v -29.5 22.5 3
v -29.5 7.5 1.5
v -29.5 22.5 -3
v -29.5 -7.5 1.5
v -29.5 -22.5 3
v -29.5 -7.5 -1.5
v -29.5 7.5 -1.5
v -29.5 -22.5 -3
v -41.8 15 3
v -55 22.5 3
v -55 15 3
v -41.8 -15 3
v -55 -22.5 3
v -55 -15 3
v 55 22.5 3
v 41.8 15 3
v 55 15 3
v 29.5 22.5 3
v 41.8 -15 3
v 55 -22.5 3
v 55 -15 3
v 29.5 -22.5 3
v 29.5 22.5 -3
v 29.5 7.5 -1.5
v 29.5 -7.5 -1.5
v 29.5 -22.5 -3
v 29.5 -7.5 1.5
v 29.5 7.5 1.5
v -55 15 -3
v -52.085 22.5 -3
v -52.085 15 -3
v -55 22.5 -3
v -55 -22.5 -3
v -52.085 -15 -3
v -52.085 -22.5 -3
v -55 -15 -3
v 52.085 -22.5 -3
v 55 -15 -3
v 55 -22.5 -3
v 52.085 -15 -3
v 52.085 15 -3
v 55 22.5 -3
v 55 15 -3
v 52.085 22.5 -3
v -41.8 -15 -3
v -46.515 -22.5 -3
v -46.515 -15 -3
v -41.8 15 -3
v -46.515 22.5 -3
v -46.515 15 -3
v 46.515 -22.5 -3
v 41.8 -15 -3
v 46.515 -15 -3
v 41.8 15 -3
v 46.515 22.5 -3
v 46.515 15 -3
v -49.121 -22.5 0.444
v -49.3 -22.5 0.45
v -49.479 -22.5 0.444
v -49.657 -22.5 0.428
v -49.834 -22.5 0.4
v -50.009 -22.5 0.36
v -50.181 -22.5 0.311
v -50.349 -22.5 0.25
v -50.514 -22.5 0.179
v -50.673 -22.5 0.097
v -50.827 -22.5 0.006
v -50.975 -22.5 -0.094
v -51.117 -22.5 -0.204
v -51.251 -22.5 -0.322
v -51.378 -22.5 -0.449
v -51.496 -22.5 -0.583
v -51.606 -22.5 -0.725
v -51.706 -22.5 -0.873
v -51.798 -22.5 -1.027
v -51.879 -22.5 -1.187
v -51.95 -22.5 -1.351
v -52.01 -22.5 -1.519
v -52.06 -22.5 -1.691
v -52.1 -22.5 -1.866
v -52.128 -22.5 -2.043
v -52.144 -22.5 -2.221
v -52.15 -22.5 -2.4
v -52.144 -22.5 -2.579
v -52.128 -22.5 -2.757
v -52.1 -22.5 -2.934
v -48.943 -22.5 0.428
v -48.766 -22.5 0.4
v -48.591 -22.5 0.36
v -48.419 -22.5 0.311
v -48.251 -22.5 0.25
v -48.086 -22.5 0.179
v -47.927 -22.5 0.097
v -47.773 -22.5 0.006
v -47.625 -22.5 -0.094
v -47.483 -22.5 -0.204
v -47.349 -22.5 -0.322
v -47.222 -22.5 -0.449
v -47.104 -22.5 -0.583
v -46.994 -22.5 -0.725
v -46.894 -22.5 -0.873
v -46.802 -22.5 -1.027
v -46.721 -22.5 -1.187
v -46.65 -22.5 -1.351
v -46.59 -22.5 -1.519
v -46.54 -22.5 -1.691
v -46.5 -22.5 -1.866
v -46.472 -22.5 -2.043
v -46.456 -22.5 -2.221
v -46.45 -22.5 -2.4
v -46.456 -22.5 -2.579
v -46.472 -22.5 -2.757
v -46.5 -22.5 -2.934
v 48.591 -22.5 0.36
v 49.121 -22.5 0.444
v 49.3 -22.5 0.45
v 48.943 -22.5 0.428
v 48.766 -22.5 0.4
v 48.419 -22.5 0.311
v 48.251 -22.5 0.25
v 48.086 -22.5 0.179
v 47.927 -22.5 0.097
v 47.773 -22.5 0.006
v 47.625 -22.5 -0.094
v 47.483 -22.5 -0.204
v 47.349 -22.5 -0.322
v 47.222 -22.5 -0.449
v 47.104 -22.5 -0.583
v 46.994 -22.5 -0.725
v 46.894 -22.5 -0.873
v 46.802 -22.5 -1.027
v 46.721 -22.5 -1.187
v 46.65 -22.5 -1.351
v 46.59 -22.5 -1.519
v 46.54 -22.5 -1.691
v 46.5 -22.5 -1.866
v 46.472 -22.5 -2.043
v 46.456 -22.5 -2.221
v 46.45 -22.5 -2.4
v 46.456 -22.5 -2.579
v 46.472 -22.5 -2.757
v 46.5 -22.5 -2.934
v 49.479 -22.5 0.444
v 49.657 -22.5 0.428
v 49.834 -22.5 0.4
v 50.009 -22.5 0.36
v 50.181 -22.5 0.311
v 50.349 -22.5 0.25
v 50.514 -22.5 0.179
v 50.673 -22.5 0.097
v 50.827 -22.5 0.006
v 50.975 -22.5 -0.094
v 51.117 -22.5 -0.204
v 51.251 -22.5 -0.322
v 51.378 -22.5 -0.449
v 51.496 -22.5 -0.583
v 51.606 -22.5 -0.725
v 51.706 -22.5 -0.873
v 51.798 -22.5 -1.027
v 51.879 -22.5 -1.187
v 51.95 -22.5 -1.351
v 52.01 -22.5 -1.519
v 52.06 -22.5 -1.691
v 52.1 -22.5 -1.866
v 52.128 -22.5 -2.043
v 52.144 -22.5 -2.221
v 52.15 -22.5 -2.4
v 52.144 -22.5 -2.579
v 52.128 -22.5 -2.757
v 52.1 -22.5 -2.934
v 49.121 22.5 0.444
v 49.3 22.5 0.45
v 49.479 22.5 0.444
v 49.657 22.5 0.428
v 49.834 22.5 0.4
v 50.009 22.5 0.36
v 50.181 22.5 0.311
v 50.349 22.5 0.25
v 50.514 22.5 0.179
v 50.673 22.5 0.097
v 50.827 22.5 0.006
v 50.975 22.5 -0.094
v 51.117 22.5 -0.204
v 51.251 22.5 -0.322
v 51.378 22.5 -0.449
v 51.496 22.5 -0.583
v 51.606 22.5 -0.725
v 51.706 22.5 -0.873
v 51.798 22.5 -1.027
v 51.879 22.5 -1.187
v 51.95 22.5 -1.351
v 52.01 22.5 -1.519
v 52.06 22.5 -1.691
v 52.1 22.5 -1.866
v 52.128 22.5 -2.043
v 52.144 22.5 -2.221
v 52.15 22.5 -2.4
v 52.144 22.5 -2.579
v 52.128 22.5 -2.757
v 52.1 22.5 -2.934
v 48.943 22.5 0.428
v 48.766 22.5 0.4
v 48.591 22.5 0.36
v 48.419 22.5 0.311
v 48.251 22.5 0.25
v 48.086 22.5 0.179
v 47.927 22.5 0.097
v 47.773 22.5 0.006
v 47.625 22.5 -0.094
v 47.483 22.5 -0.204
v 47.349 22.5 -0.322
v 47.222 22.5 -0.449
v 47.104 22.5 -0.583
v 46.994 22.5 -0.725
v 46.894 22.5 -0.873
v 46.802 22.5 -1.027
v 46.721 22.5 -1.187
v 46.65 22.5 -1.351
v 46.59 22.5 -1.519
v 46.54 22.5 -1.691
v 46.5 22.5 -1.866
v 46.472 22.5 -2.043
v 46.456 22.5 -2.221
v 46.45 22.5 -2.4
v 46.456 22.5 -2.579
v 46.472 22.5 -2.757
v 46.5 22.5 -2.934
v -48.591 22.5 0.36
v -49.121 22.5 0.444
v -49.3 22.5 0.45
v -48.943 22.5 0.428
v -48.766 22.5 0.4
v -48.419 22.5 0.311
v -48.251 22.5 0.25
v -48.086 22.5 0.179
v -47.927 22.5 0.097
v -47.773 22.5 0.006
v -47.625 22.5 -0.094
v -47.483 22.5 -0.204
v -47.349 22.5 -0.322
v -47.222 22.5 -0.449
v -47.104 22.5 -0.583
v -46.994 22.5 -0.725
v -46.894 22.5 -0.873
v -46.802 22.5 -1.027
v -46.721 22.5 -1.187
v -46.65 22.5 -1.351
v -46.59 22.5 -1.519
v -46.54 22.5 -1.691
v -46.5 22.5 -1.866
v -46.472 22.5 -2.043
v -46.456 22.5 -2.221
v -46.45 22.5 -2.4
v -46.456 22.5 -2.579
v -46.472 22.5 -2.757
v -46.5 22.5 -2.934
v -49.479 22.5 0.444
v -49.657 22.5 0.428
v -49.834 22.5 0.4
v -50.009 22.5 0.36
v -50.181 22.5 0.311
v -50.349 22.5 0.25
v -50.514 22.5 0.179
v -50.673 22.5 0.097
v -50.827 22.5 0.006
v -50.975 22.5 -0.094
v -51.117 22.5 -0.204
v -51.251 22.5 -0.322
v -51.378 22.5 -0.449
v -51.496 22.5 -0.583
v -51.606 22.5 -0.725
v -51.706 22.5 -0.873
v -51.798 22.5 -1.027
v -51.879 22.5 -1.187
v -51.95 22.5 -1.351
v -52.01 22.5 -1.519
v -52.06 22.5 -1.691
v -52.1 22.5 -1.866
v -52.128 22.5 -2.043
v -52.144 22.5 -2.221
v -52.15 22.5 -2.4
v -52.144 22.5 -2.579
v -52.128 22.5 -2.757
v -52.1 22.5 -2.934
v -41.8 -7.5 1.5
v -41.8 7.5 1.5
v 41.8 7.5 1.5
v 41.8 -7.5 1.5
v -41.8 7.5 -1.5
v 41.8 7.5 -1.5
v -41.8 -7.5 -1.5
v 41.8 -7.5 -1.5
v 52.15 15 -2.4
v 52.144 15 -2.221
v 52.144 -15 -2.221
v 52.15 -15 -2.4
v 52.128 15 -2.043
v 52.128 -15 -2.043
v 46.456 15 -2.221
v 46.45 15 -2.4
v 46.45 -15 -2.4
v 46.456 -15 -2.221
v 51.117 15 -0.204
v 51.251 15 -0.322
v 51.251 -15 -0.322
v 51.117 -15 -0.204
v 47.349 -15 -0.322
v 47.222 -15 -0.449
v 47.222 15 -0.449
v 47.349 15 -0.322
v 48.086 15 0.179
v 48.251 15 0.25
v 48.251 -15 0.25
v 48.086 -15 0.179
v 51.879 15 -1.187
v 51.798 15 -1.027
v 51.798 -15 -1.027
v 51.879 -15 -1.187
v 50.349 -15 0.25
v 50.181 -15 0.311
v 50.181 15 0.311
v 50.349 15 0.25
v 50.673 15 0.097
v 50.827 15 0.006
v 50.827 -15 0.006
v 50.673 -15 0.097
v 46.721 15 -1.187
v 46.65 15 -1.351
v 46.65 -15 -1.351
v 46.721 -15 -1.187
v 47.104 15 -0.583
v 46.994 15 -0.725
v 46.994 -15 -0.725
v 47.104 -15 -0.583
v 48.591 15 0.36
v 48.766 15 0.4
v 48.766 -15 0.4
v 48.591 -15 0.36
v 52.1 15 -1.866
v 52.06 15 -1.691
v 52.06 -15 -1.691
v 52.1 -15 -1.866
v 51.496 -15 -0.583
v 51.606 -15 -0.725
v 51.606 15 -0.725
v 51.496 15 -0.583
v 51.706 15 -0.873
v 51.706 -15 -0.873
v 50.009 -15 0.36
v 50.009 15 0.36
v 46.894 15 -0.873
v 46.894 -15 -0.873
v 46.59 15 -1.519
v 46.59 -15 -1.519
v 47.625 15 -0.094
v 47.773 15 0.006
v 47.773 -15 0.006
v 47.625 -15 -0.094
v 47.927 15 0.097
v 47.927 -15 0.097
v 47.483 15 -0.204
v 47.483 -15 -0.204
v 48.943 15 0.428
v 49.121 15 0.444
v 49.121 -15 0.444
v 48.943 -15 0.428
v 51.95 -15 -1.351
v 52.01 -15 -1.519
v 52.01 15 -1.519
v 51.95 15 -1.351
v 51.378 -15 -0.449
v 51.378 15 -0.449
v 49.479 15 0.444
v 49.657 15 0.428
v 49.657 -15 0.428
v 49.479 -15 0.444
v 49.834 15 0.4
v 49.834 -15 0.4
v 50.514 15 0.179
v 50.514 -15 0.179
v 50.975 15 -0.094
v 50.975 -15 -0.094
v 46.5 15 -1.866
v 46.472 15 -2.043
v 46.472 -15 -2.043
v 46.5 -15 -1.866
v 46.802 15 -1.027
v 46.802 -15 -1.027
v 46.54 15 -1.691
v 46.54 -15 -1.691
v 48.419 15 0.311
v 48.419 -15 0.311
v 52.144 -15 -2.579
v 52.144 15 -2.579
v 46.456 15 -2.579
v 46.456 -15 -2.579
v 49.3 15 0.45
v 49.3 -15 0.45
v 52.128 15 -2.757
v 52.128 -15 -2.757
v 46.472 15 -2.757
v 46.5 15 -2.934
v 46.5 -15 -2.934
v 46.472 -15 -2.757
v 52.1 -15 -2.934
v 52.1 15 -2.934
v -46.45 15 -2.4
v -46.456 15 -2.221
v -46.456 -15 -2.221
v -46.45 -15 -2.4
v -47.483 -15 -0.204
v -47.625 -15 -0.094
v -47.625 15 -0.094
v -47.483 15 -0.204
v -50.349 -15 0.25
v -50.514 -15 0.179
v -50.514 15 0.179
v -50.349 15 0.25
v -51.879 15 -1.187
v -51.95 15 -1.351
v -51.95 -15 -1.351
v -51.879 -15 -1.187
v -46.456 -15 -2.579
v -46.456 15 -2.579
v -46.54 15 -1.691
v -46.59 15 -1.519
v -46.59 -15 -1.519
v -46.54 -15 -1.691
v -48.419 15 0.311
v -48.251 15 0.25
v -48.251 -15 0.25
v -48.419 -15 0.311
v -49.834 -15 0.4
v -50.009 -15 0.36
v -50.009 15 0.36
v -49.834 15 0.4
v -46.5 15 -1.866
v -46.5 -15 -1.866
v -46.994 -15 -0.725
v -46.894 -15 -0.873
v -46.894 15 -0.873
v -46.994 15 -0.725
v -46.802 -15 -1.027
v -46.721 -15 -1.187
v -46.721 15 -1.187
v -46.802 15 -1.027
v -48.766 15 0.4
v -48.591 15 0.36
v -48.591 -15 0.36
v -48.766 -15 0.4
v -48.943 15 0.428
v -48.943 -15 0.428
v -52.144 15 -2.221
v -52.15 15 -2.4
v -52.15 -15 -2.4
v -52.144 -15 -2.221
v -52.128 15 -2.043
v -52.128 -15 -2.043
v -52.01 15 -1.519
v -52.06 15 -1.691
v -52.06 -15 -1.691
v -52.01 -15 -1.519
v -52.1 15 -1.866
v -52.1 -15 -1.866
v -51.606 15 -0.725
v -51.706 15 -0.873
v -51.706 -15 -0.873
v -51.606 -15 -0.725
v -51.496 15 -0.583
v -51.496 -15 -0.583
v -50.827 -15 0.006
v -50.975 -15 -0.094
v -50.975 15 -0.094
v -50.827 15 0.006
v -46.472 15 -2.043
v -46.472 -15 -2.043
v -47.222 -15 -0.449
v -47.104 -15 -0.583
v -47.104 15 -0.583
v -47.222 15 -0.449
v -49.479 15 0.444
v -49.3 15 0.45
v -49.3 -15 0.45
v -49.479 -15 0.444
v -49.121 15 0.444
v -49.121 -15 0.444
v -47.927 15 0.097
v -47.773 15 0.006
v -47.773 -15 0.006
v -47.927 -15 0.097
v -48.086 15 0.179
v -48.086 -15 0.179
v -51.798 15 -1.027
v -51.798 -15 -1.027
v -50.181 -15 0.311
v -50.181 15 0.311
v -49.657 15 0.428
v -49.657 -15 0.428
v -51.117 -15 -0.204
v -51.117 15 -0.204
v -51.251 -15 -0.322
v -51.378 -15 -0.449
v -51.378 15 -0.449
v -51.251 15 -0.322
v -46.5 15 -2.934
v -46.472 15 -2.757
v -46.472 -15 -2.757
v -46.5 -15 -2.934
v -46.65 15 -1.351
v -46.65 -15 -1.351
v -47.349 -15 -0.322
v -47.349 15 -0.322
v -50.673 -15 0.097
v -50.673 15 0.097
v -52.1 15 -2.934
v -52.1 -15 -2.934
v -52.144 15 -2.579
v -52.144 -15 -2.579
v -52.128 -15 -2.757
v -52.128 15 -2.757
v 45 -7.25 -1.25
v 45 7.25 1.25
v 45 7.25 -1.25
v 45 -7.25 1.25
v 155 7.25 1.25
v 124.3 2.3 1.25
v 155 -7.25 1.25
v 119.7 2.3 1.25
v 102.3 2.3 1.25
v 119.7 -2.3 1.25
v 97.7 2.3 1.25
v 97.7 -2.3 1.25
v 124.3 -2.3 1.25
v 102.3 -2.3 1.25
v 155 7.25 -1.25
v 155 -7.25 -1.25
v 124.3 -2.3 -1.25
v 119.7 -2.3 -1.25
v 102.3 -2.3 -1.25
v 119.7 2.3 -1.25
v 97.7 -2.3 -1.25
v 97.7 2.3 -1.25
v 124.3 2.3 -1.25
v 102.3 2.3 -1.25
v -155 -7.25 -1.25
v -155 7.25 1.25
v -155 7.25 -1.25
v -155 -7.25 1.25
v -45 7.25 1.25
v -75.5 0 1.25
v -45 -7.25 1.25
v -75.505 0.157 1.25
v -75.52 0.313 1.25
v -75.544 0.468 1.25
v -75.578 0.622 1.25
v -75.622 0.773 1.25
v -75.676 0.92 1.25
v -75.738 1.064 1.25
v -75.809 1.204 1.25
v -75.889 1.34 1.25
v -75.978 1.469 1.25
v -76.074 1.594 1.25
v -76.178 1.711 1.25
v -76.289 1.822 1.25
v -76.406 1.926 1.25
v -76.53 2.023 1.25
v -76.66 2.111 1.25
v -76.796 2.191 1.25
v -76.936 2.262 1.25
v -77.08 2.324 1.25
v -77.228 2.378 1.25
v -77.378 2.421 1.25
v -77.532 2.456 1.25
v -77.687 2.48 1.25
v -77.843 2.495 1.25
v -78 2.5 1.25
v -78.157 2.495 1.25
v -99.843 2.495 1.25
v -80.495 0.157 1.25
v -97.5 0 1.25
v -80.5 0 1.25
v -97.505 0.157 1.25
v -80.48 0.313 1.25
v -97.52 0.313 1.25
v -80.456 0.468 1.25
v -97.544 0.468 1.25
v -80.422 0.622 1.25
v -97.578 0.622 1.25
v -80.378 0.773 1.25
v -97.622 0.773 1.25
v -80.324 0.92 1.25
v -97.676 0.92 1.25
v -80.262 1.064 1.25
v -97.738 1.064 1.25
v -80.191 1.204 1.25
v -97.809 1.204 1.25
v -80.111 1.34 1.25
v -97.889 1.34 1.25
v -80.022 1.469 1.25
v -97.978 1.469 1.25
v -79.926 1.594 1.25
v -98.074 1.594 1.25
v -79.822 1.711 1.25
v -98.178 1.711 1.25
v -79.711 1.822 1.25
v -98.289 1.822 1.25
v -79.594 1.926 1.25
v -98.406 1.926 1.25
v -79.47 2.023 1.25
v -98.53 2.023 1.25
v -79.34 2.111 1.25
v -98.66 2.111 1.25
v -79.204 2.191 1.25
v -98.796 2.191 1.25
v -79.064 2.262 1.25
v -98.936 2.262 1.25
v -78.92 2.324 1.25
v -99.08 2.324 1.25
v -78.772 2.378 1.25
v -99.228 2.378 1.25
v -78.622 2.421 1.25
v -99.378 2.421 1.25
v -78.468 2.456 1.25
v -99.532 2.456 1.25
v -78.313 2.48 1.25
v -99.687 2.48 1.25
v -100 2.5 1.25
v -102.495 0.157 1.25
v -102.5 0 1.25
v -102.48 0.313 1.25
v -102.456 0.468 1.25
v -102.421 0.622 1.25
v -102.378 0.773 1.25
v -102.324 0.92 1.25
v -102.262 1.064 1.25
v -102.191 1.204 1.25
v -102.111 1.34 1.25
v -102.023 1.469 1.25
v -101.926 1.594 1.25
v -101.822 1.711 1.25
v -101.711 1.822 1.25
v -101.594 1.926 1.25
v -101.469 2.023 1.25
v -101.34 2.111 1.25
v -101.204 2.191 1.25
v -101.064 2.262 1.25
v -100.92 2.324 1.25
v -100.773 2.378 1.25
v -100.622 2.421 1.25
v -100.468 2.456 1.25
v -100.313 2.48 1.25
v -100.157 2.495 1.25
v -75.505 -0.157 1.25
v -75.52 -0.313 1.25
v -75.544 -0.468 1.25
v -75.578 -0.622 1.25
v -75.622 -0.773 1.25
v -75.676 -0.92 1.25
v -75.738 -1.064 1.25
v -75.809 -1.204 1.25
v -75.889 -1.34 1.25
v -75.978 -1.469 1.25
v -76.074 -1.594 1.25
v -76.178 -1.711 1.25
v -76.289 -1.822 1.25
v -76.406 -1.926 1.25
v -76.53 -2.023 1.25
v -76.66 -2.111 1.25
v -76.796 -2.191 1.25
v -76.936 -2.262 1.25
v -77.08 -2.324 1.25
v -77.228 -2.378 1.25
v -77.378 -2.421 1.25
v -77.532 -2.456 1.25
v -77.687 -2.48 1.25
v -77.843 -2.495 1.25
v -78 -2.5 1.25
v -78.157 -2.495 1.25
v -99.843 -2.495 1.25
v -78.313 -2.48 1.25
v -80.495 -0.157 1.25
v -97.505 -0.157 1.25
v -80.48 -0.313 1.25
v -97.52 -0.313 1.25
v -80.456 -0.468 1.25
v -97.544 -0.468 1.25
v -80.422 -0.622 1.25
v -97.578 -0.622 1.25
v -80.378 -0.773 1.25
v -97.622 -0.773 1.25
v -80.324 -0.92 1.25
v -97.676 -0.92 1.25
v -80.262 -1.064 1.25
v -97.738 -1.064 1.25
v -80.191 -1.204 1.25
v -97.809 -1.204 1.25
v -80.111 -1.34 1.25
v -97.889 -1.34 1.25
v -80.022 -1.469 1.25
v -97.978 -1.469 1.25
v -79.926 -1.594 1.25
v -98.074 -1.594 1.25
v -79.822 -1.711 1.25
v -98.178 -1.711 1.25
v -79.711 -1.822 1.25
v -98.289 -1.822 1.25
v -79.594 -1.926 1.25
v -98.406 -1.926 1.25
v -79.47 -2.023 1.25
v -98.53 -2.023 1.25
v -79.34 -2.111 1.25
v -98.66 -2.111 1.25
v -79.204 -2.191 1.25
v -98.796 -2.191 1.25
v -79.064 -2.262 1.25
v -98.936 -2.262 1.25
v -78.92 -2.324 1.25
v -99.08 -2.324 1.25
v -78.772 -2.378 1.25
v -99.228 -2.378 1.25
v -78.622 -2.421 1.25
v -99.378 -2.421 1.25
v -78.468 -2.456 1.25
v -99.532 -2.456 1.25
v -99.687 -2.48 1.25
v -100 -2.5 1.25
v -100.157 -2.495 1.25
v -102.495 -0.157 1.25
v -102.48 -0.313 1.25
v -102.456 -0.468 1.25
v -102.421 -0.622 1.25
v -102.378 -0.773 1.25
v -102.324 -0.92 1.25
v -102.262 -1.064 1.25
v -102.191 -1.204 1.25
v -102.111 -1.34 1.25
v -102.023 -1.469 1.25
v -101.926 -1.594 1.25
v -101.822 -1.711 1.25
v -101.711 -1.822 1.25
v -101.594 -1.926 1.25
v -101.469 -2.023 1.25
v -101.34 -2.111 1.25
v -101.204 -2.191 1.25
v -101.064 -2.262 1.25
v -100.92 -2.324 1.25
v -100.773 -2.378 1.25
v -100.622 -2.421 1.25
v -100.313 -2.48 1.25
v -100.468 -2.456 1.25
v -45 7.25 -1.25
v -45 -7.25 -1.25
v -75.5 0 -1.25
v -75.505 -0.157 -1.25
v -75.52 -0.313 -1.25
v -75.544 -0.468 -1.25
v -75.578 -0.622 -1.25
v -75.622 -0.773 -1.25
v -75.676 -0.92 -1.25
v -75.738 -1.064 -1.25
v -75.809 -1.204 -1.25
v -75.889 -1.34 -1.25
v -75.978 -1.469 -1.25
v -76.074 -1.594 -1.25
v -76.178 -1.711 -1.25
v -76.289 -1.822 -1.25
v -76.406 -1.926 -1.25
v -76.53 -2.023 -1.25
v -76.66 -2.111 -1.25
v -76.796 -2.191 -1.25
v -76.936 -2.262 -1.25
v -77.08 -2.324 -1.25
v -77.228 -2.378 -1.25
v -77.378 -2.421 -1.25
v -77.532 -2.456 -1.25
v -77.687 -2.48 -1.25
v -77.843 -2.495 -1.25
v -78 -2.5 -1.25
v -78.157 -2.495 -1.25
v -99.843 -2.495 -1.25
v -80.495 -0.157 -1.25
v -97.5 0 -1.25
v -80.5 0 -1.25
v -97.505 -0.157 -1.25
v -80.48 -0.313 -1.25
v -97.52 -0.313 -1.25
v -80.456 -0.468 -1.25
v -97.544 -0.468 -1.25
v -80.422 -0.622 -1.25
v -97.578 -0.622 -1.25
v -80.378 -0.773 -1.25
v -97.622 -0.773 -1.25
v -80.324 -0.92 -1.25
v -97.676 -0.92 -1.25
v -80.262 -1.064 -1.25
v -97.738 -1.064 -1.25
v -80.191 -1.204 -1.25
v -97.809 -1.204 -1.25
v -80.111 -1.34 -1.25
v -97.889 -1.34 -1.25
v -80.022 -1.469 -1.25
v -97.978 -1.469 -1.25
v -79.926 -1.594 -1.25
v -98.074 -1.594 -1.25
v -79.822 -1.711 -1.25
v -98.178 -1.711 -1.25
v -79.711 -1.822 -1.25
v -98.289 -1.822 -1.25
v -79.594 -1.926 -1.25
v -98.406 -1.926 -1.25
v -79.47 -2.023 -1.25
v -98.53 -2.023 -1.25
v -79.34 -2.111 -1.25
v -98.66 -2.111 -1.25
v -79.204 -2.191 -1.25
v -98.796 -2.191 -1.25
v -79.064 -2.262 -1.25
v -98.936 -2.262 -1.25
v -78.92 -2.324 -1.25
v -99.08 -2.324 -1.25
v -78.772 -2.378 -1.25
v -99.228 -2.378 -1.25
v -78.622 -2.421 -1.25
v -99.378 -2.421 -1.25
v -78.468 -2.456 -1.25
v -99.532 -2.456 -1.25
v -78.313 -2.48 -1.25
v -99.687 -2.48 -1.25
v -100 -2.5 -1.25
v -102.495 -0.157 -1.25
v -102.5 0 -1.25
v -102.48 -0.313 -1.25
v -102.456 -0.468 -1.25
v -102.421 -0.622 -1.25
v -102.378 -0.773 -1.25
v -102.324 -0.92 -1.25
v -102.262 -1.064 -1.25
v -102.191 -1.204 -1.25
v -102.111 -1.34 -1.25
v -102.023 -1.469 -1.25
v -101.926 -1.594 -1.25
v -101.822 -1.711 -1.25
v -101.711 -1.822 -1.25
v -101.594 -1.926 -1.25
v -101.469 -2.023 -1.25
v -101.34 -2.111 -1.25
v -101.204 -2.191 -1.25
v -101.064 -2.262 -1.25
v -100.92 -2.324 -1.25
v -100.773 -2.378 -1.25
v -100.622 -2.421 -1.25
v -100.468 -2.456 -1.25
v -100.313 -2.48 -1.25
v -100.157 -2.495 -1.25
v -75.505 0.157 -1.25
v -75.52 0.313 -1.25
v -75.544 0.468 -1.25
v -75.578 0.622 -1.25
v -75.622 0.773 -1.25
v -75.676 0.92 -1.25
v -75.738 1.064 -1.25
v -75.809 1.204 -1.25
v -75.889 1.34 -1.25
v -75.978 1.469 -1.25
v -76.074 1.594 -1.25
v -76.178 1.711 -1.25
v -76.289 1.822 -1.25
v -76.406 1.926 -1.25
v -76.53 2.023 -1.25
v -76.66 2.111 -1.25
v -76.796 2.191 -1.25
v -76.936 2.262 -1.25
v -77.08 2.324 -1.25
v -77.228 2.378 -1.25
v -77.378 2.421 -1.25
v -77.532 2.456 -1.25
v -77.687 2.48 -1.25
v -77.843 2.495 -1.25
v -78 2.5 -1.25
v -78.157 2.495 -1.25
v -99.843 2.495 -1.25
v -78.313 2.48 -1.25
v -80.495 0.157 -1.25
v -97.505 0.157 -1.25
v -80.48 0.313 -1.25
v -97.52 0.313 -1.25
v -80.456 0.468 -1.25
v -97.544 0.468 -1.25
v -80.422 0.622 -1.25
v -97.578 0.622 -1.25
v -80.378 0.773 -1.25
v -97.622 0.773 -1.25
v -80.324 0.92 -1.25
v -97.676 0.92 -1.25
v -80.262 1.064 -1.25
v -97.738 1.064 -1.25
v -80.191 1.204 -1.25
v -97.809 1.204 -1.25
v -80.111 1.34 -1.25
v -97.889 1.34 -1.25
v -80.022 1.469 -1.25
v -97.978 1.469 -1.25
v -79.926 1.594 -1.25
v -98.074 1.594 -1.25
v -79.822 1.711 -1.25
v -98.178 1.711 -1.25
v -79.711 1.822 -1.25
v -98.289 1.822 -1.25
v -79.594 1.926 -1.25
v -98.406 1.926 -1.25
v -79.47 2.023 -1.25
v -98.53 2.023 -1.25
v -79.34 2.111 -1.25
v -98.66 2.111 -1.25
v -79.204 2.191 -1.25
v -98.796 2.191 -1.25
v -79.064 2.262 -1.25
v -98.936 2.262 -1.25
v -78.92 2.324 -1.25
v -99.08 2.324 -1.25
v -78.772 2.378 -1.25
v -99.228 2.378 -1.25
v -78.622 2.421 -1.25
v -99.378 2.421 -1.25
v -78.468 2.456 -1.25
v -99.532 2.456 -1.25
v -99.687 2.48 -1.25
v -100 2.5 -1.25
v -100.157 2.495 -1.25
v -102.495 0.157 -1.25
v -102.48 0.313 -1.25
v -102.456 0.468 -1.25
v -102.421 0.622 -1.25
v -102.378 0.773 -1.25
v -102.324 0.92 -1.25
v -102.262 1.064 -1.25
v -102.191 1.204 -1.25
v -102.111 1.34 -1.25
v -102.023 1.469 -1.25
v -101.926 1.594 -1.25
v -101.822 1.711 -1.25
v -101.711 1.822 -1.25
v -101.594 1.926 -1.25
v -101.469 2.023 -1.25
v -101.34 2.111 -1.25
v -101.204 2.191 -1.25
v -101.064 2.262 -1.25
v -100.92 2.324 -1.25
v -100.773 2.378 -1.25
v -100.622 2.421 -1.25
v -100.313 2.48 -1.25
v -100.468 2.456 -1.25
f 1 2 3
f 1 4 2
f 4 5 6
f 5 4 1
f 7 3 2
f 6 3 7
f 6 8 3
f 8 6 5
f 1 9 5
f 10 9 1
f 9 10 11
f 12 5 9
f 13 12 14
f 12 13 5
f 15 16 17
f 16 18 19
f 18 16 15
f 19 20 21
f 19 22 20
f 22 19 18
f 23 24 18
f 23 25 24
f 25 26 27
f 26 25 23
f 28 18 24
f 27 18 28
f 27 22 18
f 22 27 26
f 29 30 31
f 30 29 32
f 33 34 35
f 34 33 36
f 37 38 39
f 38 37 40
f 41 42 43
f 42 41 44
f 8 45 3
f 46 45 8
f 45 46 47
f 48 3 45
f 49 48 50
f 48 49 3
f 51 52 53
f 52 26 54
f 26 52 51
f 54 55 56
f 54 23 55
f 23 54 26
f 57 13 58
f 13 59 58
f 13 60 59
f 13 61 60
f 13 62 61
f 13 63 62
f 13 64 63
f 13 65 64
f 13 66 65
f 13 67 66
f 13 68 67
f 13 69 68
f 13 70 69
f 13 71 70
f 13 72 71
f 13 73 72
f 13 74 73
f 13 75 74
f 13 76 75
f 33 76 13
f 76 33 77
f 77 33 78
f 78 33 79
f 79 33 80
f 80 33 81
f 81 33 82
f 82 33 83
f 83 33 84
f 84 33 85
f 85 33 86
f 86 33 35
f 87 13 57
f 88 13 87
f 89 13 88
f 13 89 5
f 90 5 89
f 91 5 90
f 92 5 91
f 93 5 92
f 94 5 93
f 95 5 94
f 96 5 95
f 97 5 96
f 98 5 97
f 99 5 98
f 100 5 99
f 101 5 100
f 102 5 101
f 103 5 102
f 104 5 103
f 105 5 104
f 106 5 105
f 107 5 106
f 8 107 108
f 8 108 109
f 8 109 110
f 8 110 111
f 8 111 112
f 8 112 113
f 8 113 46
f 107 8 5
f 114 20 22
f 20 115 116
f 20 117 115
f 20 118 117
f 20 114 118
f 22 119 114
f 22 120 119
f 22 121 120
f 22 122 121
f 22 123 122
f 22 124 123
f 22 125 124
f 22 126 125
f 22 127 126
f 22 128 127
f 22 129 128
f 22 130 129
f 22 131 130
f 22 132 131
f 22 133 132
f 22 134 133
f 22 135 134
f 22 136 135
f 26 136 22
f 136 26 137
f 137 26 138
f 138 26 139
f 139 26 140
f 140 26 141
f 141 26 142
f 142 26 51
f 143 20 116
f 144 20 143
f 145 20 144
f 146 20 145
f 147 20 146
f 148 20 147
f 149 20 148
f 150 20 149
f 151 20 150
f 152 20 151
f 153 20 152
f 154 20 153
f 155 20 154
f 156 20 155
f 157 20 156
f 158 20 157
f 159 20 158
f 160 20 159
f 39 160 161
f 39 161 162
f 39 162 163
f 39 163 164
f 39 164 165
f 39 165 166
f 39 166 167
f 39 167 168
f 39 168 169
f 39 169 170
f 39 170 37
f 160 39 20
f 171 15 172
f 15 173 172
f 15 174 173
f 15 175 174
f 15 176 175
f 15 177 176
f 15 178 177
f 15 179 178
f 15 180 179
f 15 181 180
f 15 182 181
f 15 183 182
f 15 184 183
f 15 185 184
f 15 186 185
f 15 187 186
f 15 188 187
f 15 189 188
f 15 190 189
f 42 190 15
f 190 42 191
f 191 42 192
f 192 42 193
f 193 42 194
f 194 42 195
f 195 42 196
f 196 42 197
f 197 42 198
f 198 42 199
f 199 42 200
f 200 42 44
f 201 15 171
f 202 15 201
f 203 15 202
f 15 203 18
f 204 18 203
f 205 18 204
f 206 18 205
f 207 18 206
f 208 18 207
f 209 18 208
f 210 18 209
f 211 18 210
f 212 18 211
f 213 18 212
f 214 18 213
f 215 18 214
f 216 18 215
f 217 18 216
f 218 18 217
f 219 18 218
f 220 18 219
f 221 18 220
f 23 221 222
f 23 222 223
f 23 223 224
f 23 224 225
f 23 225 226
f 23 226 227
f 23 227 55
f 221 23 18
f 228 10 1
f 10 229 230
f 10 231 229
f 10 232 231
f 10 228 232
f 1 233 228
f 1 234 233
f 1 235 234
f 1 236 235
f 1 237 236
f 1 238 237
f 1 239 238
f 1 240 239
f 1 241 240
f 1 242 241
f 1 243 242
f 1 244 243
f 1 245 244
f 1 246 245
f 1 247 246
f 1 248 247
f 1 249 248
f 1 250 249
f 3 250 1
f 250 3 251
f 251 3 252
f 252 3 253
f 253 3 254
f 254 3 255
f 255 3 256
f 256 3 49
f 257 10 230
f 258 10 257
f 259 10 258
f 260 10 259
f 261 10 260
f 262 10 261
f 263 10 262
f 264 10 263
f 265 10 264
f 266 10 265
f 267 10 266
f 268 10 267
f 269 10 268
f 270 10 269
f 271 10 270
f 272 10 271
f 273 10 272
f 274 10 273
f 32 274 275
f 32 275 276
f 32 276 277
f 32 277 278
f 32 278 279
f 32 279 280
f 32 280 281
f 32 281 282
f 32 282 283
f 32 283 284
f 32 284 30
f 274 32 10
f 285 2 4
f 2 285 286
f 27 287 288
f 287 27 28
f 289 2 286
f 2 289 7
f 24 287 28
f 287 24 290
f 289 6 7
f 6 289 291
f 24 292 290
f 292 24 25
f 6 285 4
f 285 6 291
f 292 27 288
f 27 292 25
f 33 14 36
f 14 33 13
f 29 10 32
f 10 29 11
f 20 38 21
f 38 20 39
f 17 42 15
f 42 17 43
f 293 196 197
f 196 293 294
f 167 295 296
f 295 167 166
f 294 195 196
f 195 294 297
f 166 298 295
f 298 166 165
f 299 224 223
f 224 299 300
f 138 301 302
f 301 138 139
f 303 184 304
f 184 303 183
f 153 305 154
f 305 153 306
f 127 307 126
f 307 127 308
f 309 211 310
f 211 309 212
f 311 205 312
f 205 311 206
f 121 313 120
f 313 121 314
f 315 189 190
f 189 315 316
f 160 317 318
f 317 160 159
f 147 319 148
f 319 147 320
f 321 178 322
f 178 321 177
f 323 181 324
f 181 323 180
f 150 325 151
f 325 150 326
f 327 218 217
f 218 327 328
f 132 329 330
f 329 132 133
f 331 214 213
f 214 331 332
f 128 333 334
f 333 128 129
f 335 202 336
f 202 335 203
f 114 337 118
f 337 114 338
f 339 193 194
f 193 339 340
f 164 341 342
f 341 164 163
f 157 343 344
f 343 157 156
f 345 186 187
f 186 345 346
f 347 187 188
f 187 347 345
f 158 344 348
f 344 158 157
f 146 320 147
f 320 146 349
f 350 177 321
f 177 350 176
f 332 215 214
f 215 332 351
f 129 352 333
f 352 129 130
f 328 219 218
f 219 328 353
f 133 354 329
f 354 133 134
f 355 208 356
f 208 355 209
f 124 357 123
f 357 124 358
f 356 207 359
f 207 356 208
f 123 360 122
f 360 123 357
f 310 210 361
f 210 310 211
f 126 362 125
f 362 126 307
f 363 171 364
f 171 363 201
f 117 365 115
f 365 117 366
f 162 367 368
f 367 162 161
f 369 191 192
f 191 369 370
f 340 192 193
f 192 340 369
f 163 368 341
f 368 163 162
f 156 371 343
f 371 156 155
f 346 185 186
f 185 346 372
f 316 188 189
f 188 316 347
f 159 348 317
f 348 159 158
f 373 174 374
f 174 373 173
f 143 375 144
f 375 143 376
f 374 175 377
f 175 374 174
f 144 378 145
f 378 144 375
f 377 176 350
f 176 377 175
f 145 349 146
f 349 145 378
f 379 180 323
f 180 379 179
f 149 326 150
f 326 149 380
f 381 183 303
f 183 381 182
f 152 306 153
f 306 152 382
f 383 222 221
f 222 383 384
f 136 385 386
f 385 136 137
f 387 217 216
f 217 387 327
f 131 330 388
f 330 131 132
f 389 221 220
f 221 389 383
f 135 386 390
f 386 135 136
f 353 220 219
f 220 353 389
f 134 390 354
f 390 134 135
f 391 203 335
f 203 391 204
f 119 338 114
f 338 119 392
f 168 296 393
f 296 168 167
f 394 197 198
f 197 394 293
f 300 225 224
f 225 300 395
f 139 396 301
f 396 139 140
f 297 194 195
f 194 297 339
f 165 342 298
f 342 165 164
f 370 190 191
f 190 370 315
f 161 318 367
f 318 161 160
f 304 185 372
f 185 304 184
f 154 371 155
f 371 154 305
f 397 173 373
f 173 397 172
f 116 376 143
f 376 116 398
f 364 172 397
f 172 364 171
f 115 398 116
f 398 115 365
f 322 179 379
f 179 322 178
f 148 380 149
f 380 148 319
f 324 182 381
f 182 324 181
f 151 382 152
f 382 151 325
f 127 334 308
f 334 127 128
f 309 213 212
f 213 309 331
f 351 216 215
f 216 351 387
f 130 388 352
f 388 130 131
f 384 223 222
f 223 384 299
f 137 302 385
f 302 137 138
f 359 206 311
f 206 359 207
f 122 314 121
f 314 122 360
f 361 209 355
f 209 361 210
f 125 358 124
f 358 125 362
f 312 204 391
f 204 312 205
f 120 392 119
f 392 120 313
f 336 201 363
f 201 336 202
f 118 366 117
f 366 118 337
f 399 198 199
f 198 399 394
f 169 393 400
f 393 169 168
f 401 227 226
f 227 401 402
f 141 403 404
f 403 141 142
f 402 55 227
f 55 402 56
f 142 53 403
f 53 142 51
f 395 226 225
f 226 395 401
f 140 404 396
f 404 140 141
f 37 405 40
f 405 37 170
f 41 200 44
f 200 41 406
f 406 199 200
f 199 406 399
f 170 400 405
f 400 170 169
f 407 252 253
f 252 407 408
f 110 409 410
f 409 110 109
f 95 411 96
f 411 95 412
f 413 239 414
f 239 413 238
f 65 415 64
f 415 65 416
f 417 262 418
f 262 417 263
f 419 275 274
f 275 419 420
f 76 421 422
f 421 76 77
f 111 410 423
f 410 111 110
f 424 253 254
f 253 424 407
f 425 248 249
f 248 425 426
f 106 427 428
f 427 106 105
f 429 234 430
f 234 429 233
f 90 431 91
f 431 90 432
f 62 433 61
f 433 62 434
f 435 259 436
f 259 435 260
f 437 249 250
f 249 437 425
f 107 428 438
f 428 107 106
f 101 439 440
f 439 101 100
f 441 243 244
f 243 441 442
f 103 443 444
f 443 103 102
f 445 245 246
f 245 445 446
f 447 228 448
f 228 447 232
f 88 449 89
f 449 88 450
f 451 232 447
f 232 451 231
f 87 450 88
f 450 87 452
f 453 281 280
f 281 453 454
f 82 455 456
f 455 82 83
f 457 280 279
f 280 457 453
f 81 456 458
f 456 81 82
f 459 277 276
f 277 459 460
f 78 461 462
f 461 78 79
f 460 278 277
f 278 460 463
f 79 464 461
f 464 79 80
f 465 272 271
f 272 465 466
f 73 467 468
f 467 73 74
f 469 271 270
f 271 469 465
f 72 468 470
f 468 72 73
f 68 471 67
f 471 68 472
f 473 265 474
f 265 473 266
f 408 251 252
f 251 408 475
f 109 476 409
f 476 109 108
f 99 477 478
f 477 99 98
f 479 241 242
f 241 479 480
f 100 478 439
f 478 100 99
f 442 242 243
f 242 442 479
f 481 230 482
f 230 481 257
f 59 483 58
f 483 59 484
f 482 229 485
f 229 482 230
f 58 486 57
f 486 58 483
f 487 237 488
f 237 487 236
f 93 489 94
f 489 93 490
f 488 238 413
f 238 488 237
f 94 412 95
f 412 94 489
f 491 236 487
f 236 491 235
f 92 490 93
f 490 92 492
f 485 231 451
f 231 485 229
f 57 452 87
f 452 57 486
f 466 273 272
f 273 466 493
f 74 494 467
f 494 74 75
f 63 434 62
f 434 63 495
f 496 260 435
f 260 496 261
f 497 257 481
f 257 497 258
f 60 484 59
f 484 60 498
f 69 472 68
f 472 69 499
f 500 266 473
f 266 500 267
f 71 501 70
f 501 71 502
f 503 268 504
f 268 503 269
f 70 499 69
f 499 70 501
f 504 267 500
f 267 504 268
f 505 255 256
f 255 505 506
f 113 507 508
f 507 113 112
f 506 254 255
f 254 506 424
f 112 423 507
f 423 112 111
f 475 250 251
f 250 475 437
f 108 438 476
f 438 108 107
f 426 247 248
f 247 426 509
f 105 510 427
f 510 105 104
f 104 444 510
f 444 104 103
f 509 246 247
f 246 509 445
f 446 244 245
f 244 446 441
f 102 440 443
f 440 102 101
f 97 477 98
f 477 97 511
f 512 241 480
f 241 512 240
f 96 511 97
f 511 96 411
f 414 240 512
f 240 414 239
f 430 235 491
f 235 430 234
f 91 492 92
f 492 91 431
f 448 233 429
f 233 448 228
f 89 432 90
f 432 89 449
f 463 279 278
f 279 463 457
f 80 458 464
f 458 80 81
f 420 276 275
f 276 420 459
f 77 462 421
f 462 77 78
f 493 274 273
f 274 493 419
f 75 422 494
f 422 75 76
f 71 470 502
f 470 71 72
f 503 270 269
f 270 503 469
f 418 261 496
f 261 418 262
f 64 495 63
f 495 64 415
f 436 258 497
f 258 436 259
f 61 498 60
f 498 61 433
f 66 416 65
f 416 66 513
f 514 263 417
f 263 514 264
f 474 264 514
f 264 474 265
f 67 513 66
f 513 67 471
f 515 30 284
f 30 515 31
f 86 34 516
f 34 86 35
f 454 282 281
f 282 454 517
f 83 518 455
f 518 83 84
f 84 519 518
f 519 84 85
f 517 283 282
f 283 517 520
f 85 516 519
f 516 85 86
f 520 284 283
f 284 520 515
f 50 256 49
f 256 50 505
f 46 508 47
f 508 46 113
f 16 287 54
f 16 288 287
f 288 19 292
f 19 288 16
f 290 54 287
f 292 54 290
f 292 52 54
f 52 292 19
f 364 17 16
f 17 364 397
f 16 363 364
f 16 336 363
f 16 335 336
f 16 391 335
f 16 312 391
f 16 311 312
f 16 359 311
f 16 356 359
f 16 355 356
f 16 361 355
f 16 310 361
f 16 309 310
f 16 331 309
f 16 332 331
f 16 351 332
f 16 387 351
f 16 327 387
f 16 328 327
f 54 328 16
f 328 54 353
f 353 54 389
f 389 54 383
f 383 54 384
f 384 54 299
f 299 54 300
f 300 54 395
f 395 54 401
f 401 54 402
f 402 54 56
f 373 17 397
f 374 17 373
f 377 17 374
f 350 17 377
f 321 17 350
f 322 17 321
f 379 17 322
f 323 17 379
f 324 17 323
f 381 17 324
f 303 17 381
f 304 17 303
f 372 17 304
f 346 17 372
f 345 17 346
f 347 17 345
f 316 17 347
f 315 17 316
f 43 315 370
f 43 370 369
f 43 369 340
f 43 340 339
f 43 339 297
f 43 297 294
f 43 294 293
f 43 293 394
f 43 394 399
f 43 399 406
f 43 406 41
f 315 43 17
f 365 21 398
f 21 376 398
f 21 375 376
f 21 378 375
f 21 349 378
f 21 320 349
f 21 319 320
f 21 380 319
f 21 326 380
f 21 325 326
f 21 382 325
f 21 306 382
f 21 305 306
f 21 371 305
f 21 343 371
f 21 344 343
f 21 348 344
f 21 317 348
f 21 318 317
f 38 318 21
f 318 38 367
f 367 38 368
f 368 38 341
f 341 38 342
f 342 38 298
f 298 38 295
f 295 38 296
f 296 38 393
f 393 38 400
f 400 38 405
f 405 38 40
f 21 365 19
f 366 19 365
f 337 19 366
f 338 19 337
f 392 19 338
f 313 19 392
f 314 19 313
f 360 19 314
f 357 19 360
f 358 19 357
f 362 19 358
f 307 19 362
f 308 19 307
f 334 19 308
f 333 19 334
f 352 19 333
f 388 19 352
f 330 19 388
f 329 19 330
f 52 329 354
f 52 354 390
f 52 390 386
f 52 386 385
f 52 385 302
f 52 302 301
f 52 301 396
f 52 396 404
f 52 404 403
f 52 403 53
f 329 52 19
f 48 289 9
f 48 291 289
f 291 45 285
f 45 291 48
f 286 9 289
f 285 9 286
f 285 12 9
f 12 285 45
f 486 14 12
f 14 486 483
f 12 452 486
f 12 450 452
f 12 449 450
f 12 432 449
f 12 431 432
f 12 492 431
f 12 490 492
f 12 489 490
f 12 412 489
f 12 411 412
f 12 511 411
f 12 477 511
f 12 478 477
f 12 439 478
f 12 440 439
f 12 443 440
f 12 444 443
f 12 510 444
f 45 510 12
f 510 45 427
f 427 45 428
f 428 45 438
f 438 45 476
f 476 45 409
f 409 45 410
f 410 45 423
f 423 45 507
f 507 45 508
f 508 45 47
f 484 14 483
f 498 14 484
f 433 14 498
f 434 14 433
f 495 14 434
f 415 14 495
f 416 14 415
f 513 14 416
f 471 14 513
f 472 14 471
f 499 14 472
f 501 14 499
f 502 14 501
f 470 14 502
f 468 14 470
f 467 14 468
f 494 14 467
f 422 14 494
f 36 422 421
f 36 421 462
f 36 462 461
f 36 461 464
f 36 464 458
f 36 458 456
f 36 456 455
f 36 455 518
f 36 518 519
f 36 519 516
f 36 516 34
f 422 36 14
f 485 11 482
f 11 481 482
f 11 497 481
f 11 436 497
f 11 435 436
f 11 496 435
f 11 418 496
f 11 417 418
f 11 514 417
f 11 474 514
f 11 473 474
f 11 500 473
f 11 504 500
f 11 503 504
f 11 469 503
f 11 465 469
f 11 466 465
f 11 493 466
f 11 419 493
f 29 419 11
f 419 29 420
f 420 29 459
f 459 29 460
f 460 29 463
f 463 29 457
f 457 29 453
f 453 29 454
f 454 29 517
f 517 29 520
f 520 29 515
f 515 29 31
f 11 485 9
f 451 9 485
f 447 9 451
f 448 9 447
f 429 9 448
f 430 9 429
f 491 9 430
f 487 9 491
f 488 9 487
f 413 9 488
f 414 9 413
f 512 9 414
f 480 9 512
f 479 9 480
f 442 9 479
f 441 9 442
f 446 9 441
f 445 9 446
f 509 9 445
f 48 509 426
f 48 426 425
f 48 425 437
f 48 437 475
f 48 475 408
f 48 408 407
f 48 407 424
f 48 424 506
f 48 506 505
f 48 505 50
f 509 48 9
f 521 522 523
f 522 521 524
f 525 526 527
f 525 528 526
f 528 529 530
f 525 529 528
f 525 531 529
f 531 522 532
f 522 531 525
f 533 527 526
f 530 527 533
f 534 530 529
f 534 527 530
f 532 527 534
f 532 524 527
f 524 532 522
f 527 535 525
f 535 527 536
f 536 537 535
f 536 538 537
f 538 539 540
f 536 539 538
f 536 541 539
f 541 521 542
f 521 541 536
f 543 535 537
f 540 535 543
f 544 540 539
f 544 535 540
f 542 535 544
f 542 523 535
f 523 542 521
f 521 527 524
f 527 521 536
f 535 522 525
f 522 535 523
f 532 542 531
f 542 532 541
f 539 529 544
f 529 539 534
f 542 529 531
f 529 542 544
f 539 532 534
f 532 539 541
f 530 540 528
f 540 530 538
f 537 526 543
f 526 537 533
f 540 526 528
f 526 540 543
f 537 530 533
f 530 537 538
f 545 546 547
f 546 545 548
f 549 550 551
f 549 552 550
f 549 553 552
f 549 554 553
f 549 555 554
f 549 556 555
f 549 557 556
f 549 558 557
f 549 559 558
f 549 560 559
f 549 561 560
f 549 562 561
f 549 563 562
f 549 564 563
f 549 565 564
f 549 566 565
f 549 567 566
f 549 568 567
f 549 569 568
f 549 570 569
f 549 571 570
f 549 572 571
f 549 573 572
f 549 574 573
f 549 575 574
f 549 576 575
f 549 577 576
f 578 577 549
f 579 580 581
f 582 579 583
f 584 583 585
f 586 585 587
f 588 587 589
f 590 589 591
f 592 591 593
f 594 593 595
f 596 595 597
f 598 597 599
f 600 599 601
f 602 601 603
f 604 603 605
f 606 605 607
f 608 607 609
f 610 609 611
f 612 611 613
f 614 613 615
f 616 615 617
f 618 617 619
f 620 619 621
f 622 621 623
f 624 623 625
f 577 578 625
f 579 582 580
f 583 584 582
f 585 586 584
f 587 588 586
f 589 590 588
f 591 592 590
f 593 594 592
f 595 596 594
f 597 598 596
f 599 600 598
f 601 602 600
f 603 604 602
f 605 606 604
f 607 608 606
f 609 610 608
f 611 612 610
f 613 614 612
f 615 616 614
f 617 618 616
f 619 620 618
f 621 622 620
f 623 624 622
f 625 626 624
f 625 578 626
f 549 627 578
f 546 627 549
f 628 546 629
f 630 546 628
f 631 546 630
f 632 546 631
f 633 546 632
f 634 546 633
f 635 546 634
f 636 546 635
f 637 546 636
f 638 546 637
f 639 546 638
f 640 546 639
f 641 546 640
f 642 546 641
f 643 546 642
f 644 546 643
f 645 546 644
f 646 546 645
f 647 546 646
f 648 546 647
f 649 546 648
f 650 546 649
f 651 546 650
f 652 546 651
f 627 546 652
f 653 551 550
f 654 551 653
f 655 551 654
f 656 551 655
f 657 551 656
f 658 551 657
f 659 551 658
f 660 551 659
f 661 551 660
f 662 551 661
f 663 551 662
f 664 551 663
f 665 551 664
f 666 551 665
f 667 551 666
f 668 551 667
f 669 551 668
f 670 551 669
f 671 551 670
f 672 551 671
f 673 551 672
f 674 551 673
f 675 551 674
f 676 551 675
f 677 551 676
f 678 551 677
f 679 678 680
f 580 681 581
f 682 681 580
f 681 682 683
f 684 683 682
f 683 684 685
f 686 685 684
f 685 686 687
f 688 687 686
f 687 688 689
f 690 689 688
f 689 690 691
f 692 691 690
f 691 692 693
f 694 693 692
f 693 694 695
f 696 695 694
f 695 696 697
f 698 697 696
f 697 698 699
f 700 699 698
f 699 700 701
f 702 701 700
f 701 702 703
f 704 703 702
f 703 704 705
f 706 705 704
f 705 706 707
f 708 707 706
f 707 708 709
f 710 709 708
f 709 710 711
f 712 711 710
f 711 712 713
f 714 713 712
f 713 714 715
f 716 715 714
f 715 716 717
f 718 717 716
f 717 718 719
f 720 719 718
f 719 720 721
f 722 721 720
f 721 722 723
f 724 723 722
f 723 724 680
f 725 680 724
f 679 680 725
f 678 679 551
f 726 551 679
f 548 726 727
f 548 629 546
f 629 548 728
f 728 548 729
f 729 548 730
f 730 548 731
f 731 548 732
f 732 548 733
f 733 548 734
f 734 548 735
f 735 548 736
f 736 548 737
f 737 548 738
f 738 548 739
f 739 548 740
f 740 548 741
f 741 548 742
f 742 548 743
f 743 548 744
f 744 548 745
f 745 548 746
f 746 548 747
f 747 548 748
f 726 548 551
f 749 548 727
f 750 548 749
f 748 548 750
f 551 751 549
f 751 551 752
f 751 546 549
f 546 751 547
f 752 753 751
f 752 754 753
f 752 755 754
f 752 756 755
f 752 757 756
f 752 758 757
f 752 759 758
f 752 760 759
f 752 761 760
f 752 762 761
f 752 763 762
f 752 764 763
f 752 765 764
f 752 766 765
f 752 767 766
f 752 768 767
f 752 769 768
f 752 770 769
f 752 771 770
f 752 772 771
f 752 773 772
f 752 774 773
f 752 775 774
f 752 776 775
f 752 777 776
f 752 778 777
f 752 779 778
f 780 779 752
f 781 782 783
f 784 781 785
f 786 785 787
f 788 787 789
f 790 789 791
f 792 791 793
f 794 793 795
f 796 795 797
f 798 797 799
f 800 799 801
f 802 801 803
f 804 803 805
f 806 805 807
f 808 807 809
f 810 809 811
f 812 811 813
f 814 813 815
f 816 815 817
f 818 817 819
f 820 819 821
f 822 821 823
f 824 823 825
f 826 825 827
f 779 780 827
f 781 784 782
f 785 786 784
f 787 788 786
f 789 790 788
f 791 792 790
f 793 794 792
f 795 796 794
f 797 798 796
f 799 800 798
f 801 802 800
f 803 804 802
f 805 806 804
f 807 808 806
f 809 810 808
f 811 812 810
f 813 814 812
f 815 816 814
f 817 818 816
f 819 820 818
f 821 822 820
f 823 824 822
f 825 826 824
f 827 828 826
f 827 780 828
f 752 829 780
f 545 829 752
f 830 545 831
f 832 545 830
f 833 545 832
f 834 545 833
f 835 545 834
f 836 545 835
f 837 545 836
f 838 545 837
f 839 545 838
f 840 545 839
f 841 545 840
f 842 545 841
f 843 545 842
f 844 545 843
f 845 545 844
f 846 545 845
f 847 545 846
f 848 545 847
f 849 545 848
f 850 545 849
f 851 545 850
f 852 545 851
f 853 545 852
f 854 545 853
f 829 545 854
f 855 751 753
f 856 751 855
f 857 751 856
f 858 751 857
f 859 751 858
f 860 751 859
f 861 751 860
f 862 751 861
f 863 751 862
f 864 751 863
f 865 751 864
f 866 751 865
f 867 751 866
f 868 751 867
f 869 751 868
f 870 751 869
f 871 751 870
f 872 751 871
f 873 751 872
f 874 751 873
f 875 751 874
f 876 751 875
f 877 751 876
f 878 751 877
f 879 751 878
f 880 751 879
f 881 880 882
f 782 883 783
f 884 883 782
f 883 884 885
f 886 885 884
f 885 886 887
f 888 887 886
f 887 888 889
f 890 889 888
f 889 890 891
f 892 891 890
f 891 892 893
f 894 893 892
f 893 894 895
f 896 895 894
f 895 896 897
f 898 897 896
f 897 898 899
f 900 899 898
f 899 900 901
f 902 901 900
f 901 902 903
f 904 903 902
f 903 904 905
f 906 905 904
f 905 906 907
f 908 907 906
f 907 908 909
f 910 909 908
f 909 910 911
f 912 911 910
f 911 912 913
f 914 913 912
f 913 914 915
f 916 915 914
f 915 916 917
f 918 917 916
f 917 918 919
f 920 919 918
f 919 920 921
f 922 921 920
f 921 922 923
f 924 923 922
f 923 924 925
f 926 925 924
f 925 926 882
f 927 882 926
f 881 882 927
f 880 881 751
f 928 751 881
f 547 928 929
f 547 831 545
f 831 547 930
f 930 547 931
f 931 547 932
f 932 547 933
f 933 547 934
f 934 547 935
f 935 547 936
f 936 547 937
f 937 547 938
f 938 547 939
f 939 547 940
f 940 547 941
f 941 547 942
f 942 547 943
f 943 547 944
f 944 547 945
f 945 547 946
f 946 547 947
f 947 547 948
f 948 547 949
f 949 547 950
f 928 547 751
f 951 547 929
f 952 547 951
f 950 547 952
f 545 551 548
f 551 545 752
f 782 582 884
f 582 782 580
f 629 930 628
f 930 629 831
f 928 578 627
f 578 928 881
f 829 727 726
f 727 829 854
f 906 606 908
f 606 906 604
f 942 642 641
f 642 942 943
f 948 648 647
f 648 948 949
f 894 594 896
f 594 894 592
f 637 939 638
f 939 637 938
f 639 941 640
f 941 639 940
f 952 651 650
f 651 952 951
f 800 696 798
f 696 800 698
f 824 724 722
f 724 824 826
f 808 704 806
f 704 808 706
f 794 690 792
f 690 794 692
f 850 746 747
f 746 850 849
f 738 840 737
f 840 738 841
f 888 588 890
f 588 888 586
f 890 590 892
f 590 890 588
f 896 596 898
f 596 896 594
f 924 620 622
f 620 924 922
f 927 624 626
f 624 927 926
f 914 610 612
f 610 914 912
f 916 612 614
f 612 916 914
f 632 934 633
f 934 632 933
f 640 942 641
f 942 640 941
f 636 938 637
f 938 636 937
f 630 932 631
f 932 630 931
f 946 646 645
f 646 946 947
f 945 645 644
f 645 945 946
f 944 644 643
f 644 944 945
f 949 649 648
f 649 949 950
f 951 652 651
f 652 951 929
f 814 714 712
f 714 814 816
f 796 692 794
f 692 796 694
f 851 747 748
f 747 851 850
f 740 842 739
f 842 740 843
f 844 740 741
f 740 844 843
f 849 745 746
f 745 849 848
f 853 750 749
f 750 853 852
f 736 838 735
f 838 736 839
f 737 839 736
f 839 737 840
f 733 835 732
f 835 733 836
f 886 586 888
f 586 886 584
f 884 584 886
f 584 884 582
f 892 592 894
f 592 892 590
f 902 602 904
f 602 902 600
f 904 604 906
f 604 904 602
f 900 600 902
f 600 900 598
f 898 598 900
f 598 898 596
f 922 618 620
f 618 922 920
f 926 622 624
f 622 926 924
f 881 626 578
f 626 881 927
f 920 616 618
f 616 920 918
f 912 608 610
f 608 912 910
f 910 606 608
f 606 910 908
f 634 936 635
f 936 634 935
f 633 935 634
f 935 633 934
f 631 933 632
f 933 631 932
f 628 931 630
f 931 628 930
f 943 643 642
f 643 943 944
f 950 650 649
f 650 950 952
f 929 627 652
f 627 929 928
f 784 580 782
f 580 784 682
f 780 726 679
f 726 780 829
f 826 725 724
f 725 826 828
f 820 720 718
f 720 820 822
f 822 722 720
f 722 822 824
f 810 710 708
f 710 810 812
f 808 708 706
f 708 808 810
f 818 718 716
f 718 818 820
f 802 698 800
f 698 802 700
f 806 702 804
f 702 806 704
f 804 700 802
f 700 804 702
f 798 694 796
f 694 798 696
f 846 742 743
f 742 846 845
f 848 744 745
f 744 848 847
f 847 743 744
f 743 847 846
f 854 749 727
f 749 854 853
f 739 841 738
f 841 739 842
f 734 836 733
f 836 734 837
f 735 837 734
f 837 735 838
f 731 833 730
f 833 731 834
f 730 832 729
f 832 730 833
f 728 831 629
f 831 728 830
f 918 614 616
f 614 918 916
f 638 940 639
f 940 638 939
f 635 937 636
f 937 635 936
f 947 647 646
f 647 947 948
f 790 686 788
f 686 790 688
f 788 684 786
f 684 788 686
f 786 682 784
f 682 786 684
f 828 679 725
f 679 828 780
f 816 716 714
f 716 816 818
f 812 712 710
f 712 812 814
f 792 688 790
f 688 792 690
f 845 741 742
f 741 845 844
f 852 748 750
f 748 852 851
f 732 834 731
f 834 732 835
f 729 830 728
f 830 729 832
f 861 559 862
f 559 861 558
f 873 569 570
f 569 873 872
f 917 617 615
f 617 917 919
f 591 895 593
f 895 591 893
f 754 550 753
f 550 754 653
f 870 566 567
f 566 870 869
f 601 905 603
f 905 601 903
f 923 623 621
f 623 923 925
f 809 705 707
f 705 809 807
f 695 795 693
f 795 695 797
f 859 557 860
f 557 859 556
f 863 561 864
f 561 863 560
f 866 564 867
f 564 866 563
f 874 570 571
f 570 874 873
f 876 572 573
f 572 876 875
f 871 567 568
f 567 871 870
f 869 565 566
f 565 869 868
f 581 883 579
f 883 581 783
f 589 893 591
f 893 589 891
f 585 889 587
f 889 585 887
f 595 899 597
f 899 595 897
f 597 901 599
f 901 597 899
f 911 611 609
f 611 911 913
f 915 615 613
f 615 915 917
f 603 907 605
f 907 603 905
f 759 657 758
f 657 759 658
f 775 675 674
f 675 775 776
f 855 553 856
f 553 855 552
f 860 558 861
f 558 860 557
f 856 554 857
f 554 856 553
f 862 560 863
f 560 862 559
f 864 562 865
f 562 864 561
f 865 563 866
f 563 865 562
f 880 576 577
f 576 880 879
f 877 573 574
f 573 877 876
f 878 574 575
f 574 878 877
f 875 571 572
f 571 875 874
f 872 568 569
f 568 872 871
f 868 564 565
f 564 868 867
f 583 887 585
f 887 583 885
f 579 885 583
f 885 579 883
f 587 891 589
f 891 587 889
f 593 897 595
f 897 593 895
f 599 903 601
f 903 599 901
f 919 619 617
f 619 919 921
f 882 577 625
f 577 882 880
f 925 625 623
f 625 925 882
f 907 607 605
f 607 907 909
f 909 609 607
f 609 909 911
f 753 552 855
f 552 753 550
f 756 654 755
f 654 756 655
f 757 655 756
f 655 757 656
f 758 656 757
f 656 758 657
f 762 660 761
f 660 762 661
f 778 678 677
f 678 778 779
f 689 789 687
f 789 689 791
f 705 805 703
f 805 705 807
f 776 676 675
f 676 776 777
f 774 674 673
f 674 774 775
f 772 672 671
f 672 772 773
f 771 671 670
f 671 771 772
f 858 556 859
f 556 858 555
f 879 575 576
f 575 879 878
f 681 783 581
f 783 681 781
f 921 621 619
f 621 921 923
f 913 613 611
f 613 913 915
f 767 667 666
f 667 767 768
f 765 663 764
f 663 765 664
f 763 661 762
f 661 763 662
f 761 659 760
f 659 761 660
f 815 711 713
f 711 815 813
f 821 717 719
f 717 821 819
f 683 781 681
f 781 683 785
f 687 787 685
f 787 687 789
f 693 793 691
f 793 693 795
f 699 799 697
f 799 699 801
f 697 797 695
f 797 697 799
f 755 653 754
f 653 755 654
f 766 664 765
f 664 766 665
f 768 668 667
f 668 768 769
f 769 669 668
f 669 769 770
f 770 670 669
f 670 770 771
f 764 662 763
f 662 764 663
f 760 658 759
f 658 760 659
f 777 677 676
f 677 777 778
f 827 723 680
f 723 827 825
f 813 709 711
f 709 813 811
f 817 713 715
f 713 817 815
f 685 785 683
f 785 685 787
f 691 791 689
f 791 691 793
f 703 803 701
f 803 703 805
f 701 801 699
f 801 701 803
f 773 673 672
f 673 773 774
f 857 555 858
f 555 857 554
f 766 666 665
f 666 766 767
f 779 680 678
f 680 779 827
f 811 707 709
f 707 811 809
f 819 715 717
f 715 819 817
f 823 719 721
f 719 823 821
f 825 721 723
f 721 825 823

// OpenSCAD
/*
 LED holder for microscope by Comunicaciones Especulativas 2017 (CC BY 4.0; https://creativecommons.org/licenses/by/4.0/) 
 http://interspecifics.cc/comunicacionesespeculativas/
 
 To use/modify this in your own projects add the following lines to your code:
 use <path_to_this_file/CE_LEDholderV2.scad>
 holder(); 
 central();
 */

dist_bars=102;// distance between horizontal stage bars
threaded_bar=5.7;//thickness of horizontal stage bars
LED=5; // standard 5mm LED
width=30;
length=110;// length of the central bar holding the LED
thickness=3;
fit=0.5; // to play with printing resolution and make pieces fit nicely
ADA=4.6; // adafruit LED
hole_style= 2; // 0= normal LED, 1= Adafruit square single RGB LED; 2=both

module holder() { // holders to stage rods
    
difference() {
    cube([length,width*1.5,thickness*2], center=true);
             union() color("Yellow") {
                 cube([length-width*1.7,width*1.5,thickness*2], center=true);
                 cube([length*0.85,width/2,thickness], center=true);
             }
    
    rotate([90,0,0]) color("Red"){
        translate([(length/2-threaded_bar),-(thickness*0.8),-(width*1.5)/2]) {
                cylinder(r=threaded_bar/2,h=width*1.5, $fn=100);  
    }
}
    
    rotate([90,0,0]) color("Blue"){
        translate([-(length/2-threaded_bar),-(thickness*0.8),-(width*1.5)/2]) {
                cylinder(r=threaded_bar/2,h=width*1.5, $fn=100);  
    }
}
    translate([(length/2)-threaded_bar,0,0]) color("Green"){
    cube([width/2,width,thickness*2], center=true);
}
    translate([-((length/2)-threaded_bar),0,0]) color("Red"){
    cube([width/2,width,thickness*2], center=true);
}
}
}

module CentralLED() { // for normal LED
    difference() {
    cube([length,(width/2)-fit,thickness-fit], center=true);
            translate([0,0,-thickness*2]) 
               cylinder(r=LED/2,h=thickness*3, $fn=100);
        translate([length*0.2,0,-thickness*2]) 
               cylinder(r=LED/2,h=thickness*3, $fn=100);
    }
} 

module CentralADA() { //for Adafruit RGB square single LED
    difference() {
    cube([length,(width/2)-fit,thickness-fit], center=true);
               cube([ADA,ADA,ADA], center=true);
         translate([length*0.2,0,0]) 
              cube([ADA,ADA,ADA], center=true);
}
}

module central(){
    if(hole_style == 0) {
			translate([-100,0,0]) { CentralLED();} //normal LED
	} else if(hole_style == 1) {
			translate([100,0,0]) { CentralADA();} //Adafruit square LED
	}
        else if(hole_style == 2) {
			translate([100,0,0]) { CentralADA(); } translate([-100,0,0])  CentralLED();} // print both 
    }

holder(); 
central();


	
        
        
